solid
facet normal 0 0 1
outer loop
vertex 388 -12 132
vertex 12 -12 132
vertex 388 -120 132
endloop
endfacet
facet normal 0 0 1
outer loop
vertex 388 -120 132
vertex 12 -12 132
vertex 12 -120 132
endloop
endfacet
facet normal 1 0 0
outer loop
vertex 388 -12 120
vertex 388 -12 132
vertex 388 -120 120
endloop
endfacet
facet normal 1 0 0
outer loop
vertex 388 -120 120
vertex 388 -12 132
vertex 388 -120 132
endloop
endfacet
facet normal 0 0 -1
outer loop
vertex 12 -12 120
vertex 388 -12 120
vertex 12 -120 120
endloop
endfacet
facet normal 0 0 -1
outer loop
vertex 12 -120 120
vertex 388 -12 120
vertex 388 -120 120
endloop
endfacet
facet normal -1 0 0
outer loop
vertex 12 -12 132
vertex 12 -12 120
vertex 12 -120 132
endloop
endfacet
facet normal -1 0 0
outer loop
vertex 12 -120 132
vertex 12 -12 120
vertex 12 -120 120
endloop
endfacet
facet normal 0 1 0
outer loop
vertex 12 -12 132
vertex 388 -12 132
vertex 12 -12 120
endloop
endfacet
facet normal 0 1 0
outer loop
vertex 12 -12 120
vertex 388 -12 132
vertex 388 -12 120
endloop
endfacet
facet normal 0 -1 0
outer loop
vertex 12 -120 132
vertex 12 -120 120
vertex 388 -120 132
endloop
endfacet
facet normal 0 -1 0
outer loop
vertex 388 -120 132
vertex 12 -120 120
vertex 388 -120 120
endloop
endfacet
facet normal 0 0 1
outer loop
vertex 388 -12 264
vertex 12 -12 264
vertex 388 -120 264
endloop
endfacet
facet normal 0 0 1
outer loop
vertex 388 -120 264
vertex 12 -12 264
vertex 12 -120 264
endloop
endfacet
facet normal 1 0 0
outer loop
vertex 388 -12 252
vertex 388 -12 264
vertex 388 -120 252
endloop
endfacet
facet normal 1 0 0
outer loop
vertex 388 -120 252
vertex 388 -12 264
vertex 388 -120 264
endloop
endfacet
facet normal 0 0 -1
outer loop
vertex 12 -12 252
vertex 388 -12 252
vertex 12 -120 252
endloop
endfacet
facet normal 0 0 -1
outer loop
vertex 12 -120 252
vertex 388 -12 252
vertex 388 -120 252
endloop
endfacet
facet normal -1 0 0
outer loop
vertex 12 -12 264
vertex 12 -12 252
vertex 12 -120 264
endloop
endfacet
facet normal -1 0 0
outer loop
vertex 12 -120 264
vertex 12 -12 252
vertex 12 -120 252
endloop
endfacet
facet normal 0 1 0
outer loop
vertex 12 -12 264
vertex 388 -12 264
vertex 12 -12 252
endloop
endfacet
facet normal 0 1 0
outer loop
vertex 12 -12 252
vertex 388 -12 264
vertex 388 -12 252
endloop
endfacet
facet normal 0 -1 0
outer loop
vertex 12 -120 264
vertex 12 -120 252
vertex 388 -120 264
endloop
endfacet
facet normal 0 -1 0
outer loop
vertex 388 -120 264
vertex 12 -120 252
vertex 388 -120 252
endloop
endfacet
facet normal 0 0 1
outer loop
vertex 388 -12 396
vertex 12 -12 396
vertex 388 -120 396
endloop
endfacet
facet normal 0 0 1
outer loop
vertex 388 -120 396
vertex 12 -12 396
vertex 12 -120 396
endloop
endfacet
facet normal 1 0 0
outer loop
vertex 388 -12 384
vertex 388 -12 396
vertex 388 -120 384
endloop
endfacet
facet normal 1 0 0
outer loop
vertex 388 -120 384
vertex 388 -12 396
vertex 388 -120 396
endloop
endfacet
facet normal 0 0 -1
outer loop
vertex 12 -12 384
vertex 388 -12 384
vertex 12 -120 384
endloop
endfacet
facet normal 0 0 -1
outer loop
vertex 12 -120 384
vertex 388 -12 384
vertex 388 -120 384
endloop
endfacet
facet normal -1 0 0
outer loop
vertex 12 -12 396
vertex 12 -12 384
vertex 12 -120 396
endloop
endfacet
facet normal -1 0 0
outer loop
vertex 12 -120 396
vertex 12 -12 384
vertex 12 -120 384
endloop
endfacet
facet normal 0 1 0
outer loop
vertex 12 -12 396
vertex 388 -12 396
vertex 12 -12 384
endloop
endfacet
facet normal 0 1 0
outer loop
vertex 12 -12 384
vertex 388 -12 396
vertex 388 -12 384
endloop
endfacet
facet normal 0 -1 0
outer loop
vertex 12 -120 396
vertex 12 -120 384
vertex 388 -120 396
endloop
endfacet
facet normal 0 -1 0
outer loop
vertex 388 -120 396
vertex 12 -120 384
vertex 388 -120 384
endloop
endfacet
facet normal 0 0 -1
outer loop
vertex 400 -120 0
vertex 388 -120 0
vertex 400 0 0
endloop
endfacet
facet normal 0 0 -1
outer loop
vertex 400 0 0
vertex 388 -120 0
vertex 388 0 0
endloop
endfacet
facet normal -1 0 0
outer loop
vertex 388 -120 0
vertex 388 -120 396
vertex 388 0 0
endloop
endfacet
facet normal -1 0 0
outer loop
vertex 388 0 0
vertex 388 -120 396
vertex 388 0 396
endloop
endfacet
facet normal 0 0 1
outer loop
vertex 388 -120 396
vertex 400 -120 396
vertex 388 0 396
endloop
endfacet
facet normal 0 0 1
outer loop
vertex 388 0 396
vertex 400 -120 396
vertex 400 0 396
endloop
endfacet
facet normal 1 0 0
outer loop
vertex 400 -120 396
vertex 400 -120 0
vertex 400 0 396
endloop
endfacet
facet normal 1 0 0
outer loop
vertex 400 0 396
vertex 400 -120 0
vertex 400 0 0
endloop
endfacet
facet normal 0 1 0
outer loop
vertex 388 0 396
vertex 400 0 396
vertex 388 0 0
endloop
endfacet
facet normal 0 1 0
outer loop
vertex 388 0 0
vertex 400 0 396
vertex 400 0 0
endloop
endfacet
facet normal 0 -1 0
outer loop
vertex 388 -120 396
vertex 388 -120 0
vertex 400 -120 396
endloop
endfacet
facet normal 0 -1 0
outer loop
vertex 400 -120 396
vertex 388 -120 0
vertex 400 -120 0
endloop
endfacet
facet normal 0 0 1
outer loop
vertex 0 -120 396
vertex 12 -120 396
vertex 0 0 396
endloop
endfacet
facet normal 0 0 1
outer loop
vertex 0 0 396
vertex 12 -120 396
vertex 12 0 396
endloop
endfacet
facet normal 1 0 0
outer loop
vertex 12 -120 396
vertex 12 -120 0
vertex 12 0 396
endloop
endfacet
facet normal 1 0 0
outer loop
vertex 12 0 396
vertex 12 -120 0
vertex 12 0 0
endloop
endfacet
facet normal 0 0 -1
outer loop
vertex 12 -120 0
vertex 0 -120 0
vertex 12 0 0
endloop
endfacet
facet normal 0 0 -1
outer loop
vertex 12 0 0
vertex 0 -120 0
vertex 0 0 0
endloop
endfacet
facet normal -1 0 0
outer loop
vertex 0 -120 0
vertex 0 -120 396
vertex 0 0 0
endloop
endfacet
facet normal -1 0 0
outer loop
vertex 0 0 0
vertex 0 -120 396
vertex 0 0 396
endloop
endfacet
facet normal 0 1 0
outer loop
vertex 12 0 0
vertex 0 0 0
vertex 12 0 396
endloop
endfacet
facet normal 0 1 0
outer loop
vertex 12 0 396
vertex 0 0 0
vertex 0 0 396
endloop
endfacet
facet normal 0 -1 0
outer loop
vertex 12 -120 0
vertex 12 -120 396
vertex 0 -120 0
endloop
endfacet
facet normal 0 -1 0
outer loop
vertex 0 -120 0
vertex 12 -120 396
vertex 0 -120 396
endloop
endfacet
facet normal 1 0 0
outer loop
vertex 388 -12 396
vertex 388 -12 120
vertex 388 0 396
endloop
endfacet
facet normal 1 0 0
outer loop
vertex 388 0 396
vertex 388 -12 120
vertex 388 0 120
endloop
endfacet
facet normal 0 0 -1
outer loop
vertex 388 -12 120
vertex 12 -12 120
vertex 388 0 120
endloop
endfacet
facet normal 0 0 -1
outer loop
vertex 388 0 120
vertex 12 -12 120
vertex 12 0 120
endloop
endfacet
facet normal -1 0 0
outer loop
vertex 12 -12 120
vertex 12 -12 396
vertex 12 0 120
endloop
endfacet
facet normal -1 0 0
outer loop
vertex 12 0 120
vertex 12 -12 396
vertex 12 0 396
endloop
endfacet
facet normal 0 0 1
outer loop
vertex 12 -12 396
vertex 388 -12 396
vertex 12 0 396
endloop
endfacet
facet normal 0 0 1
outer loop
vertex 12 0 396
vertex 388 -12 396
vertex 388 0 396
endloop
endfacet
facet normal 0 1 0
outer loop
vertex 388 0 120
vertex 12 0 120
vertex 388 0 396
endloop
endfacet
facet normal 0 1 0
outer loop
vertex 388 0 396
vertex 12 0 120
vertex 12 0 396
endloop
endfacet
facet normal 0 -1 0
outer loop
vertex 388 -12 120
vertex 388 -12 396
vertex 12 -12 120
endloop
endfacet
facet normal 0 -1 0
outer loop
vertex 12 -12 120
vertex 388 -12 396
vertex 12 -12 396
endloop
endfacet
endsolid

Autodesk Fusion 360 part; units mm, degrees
sketch "Sketch1" plane through (0, 0, 0) normal (0, 1, 0) x (1, 0, 0) in component "shelf"
  line L0 (400, 0) -> (400, -396)
  line L1 (400, -396) -> (0, -396)
  line L2 (0, -396) -> (0, 0)
  line L3 (0, 0) -> (12, 0)
  line L4 (12, 0) -> (12, -120)
  line L5 (12, -120) -> (388, -120)
  line L6 (388, -120) -> (388, 0)
  line L7 (388, 0) -> (400, 0)
  line L8 (12, -252) -> (388, -252)
  line L9 (388, -252) -> (388, -132)
  line L10 (388, -132) -> (12, -132)
  line L11 (12, -132) -> (12, -252)
  line L12 (12, -120) -> (12, -132)
  line L13 (12, -264) -> (388, -264)
  line L14 (388, -264) -> (388, -384)
  line L15 (388, -384) -> (12, -384)
  line L16 (12, -384) -> (12, -264)
  line L17 (12, -252) -> (12, -264)
  line L18 (12, -384) -> (12, -396)
  line L19 (388, -264) -> (388, -252)
  line L20 (388, -132) -> (388, -120)
  line L21 (388, -384) -> (388, -396)
  dimension "d4" = 120
  dimension "d6" = 12
  dimension "d7" = 400
  dimension "d8" = 396
extrude "Extrude1" add sketch "Sketch1" against normal blind 108 from surface at -12 contours L1 L15 L18 L21 | L5 L10 L12 L20 | L8 L13 L17 L19 makes body 1 at (262.6667, -48, 132) makes body 2 at (137.3333, -48, 264) makes body 3 at (262.6667, -48, 396) in component "shelf"
extrude "Extrude2" add sketch "Sketch1" against normal up to surface (120 mm away) separate body contours L0 L1 L6 L7 L9 L14 L19 L20 L21 | L1 L2 L3 L4 L11 L12 L16 L17 L18 makes body 4 at (400, -40, 132) makes body 5 at (0, -40, 264) in component "shelf"
extrude "Extrude3" add sketch "Sketch1" against normal up to surface (12 mm away) separate body contours L1 L15 L18 L21 | L5 L10 L12 L20 | L13 L14 L15 L16 | L8 L9 L10 L11 | L8 L13 L17 L19 makes body 6 in component "shelf"
sketch "Sketch1 (2)" plane through (0, 0, 0) normal (0, 0, 1) x (1, 0, 0) in component "cutlist"
  line L0 (0, 0) -> (0, 100) construction
  line L1 (0, 100) -> (108, 100)
  line L2 (108, 100) -> (108, 476)
  line L3 (108, 476) -> (0, 476)
  line L4 (0, 476) -> (0, 100)
  line L5 (113, 100) -> (221, 100)
  line L6 (221, 100) -> (221, 476)
  line L7 (113, 476) -> (113, 100)
  line L8 (221, 476) -> (113, 476)
  line L9 (226, 100) -> (334, 100)
  line L10 (334, 100) -> (334, 476)
  line L11 (226, 476) -> (226, 100)
  line L12 (334, 476) -> (226, 476)
  line L13 (434, 100) -> (554, 100)
  line L14 (554, 100) -> (554, 496)
  line L15 (554, 496) -> (434, 496)
  line L16 (434, 496) -> (434, 100)
  line L17 (334, 100) -> (434, 100) construction
  line L18 (559, 100) -> (679, 100)
  line L19 (679, 100) -> (679, 496)
  line L20 (559, 496) -> (559, 100)
  line L21 (679, 496) -> (559, 496)
  line L22 (779, 100) -> (1055, 100)
  line L23 (1055, 100) -> (1055, 476)
  line L24 (1055, 476) -> (779, 476)
  line L25 (779, 476) -> (779, 100)
  line L26 (679, 100) -> (779, 100) construction
  dimension "d17" = 100
  dimension "d18" = 376
  dimension "d19" = 108
  dimension "d22" = 113
  dimension "d23" = 0
  dimension "d24" = 396
  dimension "d25" = 120
  dimension "d28" = 125
  dimension "d29" = 0
  dimension "d30" = 276
  dimension "d31" = 334
  dimension "d32" = 245
component "shelf" placed x (1, 0, 0) y (0, 1, 0) z (0, 0, 1) at (0, 0, 0)
component "cutlist" placed x (1, 0, 0) y (0, 1, 0) z (0, 0, 1) at (0, 0, 0)
equation "bottomMinHeight = 120 mm"
equation "maxHeight = 400 mm"
equation "d4 = bottomMinHeight"
equation "plyT = 12 mm"
equation "d6 = plyT"
equation "maxDepth = 120 mm"
equation "d10 = -plyT"
equation "d11 = -maxDepth + plyT"
equation "d18 = 400 mm - 2 * plyT"
equation "d19 = maxDepth - plyT"
equation "d22 = 5 mm + ( maxDepth - plyT )"
equation "d25 = maxDepth"
equation "d28 = 5 mm + maxDepth"
